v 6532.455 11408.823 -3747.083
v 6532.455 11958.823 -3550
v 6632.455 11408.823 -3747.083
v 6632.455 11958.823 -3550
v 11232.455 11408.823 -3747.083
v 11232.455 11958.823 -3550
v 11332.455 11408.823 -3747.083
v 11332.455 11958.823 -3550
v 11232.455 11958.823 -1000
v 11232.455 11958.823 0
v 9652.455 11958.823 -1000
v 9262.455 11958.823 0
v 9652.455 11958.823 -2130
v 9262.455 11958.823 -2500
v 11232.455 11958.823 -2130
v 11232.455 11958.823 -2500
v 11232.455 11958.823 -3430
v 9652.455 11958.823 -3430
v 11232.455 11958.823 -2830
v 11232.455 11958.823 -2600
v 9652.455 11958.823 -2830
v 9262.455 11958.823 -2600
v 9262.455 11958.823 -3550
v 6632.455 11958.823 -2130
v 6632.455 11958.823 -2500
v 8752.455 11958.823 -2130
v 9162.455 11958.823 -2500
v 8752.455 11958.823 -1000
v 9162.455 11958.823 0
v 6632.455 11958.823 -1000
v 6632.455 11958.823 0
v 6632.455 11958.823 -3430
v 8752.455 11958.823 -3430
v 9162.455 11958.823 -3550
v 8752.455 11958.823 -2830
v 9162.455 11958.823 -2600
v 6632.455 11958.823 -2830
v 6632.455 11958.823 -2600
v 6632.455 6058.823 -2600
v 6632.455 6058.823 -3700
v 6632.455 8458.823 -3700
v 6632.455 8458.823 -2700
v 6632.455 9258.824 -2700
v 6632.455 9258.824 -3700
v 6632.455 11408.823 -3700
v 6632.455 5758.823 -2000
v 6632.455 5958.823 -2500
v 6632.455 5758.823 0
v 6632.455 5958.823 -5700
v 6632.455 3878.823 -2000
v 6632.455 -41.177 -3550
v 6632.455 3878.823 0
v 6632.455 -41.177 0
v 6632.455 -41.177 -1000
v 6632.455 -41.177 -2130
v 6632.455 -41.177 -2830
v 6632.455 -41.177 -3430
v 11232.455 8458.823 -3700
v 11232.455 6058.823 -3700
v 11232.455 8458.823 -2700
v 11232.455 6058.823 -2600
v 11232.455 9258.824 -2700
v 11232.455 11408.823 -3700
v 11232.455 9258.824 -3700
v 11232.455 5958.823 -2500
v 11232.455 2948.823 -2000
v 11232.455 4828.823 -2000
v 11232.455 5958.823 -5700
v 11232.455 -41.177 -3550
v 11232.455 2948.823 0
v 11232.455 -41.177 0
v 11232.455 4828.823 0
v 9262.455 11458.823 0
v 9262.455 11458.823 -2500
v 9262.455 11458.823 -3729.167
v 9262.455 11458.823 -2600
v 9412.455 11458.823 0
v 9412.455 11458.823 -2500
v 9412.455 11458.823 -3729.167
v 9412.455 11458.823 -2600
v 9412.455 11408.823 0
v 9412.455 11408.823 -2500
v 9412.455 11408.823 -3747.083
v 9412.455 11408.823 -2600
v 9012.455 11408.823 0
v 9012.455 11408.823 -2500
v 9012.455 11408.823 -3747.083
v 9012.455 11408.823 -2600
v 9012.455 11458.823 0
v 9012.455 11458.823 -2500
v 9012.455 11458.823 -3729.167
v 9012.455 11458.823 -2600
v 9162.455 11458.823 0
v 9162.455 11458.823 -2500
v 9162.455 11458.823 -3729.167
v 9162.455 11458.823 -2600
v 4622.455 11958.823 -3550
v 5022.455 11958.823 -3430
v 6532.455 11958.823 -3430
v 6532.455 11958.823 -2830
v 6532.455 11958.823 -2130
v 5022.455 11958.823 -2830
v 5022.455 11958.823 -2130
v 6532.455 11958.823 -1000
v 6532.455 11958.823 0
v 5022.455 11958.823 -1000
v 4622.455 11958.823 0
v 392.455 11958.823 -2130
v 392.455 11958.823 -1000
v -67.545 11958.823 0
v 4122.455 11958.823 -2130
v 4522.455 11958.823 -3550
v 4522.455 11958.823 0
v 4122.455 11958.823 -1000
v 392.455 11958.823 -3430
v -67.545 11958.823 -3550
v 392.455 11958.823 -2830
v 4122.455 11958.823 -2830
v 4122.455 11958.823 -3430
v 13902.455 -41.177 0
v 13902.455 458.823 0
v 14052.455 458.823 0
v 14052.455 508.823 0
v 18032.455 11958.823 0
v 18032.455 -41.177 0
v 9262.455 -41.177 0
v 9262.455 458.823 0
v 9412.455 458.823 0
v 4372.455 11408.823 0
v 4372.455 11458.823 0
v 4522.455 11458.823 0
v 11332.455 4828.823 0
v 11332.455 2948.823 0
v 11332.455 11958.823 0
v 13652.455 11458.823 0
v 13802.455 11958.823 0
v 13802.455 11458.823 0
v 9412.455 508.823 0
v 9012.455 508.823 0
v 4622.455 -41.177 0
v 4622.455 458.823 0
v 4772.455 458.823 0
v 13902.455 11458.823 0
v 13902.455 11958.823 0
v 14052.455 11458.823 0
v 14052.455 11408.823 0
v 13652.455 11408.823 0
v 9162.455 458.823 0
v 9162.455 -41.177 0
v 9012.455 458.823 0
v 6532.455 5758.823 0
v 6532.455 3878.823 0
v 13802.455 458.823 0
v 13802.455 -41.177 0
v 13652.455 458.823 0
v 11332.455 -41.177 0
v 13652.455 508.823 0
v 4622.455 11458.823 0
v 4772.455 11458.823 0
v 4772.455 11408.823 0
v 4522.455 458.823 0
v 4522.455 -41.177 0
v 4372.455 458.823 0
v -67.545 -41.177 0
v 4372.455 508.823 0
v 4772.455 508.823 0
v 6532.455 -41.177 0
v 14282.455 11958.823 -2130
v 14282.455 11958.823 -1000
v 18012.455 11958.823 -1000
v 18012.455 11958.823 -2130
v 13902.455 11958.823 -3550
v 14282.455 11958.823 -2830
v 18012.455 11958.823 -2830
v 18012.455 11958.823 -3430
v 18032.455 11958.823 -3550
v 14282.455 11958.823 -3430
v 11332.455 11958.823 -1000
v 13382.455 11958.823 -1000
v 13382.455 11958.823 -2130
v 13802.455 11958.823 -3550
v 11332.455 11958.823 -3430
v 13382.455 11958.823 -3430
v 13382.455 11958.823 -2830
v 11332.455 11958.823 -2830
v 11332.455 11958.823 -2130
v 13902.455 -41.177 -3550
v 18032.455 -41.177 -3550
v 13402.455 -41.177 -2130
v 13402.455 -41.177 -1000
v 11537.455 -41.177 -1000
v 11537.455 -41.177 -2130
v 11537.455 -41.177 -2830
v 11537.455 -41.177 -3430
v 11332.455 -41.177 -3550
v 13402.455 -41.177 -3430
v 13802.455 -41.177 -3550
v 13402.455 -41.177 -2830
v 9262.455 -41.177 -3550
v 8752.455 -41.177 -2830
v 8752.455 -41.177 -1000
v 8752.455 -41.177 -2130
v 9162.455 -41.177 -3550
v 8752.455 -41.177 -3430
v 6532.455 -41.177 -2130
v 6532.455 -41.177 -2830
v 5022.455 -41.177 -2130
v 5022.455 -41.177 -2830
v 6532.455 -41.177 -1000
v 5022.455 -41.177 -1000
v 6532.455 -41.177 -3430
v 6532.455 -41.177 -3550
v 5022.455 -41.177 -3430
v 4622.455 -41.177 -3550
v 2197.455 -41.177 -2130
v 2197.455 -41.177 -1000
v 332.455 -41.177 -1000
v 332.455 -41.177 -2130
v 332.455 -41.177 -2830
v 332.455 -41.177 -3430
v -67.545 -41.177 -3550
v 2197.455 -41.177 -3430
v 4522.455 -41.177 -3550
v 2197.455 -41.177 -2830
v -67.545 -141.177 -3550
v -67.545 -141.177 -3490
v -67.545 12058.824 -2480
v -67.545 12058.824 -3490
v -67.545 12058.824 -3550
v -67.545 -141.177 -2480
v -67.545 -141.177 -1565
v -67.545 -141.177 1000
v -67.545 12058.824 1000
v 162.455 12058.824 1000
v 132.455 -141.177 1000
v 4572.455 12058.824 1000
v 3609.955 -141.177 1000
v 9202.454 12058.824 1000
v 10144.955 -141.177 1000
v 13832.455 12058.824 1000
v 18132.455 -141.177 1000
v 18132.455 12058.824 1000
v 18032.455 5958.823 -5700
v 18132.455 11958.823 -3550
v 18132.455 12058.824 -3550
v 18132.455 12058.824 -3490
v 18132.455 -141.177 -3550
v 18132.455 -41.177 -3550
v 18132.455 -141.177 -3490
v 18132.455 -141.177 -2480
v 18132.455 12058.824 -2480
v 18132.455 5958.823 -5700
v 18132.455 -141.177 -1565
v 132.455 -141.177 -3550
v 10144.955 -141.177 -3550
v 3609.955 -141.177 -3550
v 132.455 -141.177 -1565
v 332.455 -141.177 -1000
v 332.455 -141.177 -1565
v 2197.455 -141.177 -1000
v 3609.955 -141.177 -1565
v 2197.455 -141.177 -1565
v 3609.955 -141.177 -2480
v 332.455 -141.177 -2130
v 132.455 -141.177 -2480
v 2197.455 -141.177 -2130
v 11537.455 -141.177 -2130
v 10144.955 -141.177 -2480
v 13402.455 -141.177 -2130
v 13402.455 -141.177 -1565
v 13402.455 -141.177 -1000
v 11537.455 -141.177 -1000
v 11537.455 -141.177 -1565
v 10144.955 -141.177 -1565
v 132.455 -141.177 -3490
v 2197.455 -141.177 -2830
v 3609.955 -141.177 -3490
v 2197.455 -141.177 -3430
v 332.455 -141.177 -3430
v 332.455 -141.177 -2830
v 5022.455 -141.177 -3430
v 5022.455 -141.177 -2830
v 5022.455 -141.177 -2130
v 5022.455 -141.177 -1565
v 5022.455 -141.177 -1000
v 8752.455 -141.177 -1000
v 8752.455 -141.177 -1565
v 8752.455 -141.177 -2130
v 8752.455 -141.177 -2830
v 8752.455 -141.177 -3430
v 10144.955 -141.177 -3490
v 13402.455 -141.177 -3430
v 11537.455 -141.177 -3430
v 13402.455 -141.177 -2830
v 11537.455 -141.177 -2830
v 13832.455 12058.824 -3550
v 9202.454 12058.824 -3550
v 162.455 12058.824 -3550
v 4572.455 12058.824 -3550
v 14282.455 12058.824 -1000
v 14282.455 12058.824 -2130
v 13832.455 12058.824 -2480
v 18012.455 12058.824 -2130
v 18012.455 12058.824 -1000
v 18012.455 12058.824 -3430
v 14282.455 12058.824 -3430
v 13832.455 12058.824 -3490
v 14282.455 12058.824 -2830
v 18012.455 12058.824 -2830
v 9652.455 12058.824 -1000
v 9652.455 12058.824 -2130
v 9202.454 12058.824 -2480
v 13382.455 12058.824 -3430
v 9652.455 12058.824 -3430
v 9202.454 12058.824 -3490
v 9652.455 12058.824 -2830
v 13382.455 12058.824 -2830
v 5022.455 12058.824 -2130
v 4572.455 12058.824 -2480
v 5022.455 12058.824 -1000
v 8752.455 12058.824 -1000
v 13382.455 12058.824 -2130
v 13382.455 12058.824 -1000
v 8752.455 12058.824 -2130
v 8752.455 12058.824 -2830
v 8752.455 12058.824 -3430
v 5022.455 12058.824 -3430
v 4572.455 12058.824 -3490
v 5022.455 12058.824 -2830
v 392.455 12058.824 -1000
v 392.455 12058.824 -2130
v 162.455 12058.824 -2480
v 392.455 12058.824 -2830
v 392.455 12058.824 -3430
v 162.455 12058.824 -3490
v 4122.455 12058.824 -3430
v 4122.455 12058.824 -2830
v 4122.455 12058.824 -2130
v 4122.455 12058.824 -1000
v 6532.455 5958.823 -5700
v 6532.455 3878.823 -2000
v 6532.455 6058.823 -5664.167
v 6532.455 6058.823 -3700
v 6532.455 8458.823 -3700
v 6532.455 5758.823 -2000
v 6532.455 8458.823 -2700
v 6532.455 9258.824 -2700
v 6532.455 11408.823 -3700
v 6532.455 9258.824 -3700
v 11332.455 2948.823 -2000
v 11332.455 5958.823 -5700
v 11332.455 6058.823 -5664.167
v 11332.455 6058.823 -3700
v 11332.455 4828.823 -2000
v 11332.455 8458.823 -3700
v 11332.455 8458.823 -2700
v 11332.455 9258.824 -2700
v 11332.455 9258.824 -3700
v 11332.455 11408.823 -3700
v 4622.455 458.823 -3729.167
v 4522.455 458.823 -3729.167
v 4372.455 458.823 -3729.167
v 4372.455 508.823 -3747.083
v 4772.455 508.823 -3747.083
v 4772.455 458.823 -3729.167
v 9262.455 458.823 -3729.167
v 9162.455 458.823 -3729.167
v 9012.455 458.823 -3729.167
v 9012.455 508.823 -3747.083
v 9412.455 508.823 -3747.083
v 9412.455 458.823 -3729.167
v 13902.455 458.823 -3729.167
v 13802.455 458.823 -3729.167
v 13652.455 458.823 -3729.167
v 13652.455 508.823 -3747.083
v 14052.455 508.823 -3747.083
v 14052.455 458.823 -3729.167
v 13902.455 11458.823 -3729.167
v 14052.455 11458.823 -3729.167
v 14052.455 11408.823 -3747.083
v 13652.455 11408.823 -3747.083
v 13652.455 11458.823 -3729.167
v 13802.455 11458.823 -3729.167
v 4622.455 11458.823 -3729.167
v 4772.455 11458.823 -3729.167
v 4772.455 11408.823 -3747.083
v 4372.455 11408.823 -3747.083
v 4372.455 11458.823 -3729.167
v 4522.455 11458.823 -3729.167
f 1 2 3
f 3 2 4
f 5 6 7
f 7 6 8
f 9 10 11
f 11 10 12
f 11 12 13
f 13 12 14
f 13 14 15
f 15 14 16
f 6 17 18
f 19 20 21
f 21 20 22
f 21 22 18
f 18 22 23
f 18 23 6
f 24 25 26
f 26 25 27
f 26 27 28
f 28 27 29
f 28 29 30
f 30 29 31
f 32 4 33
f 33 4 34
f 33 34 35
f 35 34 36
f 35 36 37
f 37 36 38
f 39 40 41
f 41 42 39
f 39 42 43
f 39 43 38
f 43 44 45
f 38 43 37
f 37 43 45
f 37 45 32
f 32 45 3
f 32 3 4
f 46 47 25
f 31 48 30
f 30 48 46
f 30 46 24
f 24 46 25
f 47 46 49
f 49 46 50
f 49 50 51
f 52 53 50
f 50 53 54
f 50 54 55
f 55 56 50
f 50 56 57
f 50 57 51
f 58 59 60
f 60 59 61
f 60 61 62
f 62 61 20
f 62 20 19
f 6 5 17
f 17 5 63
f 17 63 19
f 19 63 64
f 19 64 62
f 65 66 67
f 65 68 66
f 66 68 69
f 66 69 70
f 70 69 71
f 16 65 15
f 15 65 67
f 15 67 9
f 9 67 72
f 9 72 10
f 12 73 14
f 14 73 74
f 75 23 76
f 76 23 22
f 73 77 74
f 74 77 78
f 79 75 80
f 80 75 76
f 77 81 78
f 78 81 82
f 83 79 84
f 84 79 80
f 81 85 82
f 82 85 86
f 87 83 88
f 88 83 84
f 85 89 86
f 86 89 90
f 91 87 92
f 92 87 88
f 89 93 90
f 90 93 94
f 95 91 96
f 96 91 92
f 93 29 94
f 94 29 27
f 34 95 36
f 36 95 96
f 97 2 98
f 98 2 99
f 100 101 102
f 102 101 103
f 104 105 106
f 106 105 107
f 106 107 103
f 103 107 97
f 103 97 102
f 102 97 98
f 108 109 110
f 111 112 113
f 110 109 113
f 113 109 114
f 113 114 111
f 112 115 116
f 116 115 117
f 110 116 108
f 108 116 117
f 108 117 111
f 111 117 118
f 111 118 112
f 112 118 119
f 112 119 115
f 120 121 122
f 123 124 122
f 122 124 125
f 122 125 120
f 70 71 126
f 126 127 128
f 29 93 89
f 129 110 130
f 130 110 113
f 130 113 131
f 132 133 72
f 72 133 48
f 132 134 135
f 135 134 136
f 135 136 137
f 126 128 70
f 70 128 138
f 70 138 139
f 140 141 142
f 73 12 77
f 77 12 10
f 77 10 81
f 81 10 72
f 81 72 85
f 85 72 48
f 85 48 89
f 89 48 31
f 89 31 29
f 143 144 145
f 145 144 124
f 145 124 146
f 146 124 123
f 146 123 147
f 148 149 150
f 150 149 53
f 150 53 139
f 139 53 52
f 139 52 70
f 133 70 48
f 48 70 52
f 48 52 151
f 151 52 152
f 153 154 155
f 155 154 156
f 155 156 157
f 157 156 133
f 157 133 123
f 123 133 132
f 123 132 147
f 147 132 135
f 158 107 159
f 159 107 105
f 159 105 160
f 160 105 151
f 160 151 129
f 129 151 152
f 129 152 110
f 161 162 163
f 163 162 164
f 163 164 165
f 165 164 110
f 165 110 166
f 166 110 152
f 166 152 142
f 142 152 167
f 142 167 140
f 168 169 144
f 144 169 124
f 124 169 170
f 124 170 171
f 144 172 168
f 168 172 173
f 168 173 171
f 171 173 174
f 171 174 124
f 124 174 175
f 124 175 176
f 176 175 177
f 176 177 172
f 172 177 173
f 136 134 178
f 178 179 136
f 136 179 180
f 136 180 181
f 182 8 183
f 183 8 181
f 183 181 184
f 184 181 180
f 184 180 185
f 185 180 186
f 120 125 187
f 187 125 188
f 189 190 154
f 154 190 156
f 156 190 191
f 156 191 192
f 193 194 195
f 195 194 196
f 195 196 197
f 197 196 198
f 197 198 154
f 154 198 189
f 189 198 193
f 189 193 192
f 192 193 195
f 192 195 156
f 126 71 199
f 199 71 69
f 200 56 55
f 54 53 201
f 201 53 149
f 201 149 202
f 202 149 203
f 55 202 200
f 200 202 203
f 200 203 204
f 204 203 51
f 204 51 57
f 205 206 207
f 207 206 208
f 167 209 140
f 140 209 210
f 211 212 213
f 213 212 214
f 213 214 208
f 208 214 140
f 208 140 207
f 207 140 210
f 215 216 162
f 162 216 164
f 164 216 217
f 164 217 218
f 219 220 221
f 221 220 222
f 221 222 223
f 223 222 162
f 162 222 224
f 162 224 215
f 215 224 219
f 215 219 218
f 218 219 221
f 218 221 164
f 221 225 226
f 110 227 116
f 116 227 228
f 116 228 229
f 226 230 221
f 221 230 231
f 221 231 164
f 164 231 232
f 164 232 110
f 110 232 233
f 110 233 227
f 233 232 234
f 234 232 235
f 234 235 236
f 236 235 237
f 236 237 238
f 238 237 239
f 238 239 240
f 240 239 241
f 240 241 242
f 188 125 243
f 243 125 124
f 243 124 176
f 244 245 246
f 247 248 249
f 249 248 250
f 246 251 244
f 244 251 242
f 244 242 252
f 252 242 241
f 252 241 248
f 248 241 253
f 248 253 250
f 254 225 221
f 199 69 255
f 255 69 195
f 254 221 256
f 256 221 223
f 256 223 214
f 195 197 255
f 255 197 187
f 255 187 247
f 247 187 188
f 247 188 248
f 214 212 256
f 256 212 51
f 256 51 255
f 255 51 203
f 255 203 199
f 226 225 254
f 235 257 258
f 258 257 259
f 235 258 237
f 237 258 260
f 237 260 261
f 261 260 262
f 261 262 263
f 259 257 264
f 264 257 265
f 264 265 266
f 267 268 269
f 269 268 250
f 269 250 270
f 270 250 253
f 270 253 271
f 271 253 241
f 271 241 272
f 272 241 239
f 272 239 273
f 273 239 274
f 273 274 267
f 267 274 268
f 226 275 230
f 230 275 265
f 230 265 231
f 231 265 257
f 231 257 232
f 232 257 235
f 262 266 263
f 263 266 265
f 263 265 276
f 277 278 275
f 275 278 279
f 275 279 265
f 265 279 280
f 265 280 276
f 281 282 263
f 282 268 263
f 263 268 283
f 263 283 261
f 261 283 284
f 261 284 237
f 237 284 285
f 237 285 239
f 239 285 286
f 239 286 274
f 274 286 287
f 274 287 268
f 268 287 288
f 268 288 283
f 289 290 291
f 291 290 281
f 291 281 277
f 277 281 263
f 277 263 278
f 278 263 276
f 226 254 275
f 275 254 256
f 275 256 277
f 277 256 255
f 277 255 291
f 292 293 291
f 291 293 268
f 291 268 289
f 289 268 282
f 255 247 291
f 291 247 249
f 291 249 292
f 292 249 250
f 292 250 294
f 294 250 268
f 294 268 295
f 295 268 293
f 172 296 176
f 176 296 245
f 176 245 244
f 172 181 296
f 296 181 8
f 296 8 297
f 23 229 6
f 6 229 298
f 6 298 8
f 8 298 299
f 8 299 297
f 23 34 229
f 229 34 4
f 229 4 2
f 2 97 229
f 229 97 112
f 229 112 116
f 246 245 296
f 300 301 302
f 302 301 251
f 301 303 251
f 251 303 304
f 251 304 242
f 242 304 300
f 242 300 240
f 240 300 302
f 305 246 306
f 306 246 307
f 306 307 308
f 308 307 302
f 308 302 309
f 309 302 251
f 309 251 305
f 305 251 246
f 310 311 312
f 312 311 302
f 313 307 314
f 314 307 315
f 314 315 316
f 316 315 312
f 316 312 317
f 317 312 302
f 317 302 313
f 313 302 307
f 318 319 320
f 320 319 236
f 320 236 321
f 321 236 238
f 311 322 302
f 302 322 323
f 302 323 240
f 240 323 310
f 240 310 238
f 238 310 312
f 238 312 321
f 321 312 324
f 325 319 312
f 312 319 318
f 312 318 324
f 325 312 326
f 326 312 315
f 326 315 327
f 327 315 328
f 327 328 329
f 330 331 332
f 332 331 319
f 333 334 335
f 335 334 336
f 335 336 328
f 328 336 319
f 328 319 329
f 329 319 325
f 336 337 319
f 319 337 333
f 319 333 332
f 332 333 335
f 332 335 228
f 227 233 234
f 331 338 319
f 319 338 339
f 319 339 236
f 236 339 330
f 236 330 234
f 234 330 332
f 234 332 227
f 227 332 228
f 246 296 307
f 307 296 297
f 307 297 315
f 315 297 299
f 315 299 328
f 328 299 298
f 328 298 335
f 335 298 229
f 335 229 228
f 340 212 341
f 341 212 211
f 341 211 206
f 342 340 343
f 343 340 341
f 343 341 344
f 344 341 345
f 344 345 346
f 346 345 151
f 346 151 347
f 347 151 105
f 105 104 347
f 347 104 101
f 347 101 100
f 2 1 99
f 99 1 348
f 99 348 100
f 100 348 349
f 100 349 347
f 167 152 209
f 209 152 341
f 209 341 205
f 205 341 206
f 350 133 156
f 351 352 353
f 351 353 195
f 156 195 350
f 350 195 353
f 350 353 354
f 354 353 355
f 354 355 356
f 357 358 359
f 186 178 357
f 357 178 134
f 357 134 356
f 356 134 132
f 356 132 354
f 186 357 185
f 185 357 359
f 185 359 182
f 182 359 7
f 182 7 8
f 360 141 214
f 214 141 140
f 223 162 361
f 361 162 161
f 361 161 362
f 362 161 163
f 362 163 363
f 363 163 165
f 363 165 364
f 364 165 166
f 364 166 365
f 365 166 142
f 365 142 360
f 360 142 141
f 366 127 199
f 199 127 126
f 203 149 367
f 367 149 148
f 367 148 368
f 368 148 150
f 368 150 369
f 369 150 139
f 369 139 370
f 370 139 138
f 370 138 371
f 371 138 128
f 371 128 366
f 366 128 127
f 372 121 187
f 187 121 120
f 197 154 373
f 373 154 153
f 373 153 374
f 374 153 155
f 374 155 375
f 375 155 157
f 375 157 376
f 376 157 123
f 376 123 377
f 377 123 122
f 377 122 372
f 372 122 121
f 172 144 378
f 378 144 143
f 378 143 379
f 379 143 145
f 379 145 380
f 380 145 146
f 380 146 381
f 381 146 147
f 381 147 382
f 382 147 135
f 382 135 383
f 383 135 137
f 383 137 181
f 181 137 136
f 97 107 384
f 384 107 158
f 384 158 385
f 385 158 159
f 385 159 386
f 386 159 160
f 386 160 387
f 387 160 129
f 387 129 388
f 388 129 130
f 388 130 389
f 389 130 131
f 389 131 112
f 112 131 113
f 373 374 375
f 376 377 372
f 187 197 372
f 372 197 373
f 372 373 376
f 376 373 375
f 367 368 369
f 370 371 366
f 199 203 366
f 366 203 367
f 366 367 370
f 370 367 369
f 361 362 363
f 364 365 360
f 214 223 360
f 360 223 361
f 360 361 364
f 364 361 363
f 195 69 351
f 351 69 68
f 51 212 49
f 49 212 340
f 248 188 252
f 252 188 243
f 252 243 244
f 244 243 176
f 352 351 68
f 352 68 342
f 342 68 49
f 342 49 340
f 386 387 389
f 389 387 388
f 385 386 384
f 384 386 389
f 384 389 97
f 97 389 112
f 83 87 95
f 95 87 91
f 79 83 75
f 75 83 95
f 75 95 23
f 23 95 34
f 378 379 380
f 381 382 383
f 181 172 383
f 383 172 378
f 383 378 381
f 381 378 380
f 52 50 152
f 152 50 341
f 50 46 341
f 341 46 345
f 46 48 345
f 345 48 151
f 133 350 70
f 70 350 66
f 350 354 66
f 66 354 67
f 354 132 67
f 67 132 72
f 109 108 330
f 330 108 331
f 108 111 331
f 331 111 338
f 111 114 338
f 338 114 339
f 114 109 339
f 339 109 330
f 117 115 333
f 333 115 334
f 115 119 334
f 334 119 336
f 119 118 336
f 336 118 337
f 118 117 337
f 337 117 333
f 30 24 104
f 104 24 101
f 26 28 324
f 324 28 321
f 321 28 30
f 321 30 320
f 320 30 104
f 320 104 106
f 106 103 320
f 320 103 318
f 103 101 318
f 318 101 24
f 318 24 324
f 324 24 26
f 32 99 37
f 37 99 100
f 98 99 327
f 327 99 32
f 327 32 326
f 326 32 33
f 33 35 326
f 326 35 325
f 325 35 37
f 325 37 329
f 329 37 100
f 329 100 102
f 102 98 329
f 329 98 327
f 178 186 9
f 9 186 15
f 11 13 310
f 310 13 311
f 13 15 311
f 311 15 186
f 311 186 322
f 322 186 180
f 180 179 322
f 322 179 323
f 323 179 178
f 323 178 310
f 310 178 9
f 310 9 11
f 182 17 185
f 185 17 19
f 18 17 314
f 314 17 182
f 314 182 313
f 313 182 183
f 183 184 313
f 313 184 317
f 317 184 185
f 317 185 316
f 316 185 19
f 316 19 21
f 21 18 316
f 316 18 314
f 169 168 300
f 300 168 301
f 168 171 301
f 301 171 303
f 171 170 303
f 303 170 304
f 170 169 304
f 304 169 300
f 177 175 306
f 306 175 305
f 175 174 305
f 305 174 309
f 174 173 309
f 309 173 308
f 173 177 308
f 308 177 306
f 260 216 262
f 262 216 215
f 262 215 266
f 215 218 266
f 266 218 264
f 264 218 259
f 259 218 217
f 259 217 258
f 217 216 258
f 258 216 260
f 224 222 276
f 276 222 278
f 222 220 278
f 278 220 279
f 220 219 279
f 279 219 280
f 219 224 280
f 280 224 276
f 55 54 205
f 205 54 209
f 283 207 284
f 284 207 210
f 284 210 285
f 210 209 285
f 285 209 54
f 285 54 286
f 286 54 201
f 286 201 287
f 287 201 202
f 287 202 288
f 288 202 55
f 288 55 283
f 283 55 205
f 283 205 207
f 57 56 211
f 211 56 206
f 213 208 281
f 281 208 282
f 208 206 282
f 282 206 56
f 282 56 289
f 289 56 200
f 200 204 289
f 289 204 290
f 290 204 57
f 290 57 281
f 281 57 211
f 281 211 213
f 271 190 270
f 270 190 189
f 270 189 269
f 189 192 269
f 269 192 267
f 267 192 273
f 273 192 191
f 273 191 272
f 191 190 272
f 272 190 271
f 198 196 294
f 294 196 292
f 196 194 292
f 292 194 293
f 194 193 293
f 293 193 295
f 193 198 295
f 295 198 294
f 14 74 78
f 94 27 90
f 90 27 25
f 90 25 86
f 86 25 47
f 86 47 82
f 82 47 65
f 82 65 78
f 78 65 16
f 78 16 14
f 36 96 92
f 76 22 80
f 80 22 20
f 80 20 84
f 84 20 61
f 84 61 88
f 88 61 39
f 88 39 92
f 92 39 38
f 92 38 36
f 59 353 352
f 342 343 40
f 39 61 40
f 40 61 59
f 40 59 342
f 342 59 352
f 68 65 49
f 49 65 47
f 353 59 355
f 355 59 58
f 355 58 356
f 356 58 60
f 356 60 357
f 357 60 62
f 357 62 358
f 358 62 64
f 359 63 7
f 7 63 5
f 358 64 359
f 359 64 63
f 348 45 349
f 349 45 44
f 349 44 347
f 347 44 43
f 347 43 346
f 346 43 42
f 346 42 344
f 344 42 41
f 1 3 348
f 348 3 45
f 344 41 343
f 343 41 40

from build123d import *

# Parameters (mm, degrees)
SKETCH_1_W           = 18100
SKETCH_1_H           = 12000
EXTRUDE_1_DEPTH      = 1000
SKETCH_11_W          = 6700
SKETCH_11_H          = 12000
EXTRUDE_7_DEPTH      = 100
SKETCH_12_W          = 18200
SKETCH_12_H          = 4550
EXTRUDE_8_DEPTH      = 100
SKETCH_13_W          = 18200
SKETCH_13_H          = 4550
EXTRUDE_9_DEPTH      = 100
SKETCH_14_W          = 100
SKETCH_14_H          = 12000
EXTRUDE_10_DEPTH     = 5700
EXTRUDE_11_DEPTH     = 5000
CUT_EXTRUDE_7_DEPTH  = 22565.246428131
SKETCH_17_W          = 2000
SKETCH_17_H          = 1880
CUT_EXTRUDE_8_DEPTH  = 100
SKETCH_18_W          = 2000
SKETCH_18_H          = 1880
CUT_EXTRUDE_9_DEPTH  = 100
SKETCH_19_W          = 3730
SKETCH_19_H          = 1130
SKETCH_19_H_2        = 600
CUT_EXTRUDE_10_DEPTH = 100
SKETCH_20_W          = 1865
SKETCH_20_H          = 1130
SKETCH_20_H_2        = 600
SKETCH_20_W_2        = 3730
CUT_EXTRUDE_11_DEPTH = 100
EXTRUDE_12_REACH     = 17483.282
CUT_EXTRUDE_13_REACH = 17678.686


with BuildPart() as part:
    # ｽｹｯﾁ1 → ﾎﾞｽ - 押し出し1 (new body)
    with BuildSketch(Plane.XY):
        with Locations((8982.45501815, 5958.823195876)):
            Rectangle(SKETCH_1_W, SKETCH_1_H)
    extrude(amount=EXTRUDE_1_DEPTH)

    # ｽｹｯﾁ11 → ﾎﾞｽ - 押し出し7 (add)
    with BuildSketch(Plane(origin=(18032.45501815, 0, 0), x_dir=(0, 0, -1), z_dir=(1, 0, 0))):
        with Locations((2350, 5958.823195876)):
            Rectangle(SKETCH_11_W, SKETCH_11_H)
    extrude(amount=EXTRUDE_7_DEPTH)

    # ｽｹｯﾁ12 → ﾎﾞｽ - 押し出し8 (add)
    with BuildSketch(Plane(origin=(0, -41.176804124, 0), x_dir=(-1, 0, 0), z_dir=(0, -1, 0))):
        with Locations((-9032.45501815, 1275)):
            Rectangle(SKETCH_12_W, SKETCH_12_H)
    extrude(amount=EXTRUDE_8_DEPTH)

    # ｽｹｯﾁ13 → ﾎﾞｽ - 押し出し9 (add)
    with BuildSketch(Plane(origin=(0, 11958.823195876, 0), x_dir=(1, 0, 0), z_dir=(0, 1, 0))):
        with Locations((9032.45501815, 1275)):
            Rectangle(SKETCH_13_W, SKETCH_13_H)
    extrude(amount=EXTRUDE_9_DEPTH)

    # ｽｹｯﾁ14 → ﾎﾞｽ - 押し出し10 (add)
    with BuildSketch(Plane(origin=(0, 0, 0), x_dir=(-1, 0, 0), z_dir=(0, 0, -1))):
        with Locations((-6582.45501815, 5958.823195876)):
            Rectangle(SKETCH_14_W, SKETCH_14_H)
        with Locations((-11282.45501815, 5958.823195876)):
            Rectangle(SKETCH_14_W, SKETCH_14_H)
    extrude(amount=EXTRUDE_10_DEPTH)

    # ｽｹｯﾁ16 → ﾎﾞｽ - 押し出し11 (add)
    with BuildSketch(Plane(origin=(0, 0, 0), x_dir=(-1, 0, 0), z_dir=(0, 0, -1))):
        Polygon((-4622.45501815, -41.176804124), (-4522.45501815, -41.176804124), (-4522.45501815, 458.823195876), (-4372.45501815, 458.823195876), (-4372.45501815, 508.823195876), (-4772.45501815, 508.823195876), (-4772.45501815, 458.823195876), (-4622.45501815, 458.823195876), align=None)
        Polygon((-9262.45501815, -41.176804124), (-9162.45501815, -41.176804124), (-9162.45501815, 458.823195876), (-9012.45501815, 458.823195876), (-9012.45501815, 508.823195876), (-9412.45501815, 508.823195876), (-9412.45501815, 458.823195876), (-9262.45501815, 458.823195876), align=None)
        Polygon((-13902.45501815, -41.176804124), (-13802.45501815, -41.176804124), (-13802.45501815, 458.823195876), (-13652.45501815, 458.823195876), (-13652.45501815, 508.823195876), (-14052.45501815, 508.823195876), (-14052.45501815, 458.823195876), (-13902.45501815, 458.823195876), align=None)
        Polygon((-13902.45501815, 11958.823195876), (-13802.45501815, 11958.823195876), (-13802.45501815, 11458.823195876), (-13652.45501815, 11458.823195876), (-13652.45501815, 11408.823195876), (-14052.45501815, 11408.823195876), (-14052.45501815, 11458.823195876), (-13902.45501815, 11458.823195876), align=None)
        Polygon((-9262.45501815, 11958.823195876), (-9162.45501815, 11958.823195876), (-9162.45501815, 11458.823195876), (-9012.45501815, 11458.823195876), (-9012.45501815, 11408.823195876), (-9412.45501815, 11408.823195876), (-9412.45501815, 11458.823195876), (-9262.45501815, 11458.823195876), align=None)
        Polygon((-4622.45501815, 11958.823195876), (-4522.45501815, 11958.823195876), (-4522.45501815, 11458.823195876), (-4372.45501815, 11458.823195876), (-4372.45501815, 11408.823195876), (-4772.45501815, 11408.823195876), (-4772.45501815, 11458.823195876), (-4622.45501815, 11458.823195876), align=None)
    extrude(amount=EXTRUDE_11_DEPTH)

    # ｽｹｯﾁ15 → ｶｯﾄ - 押し出し7 (cut, through all)
    with BuildSketch(Plane(origin=(18132.45501815, 0, 0), x_dir=(0, 0, -1), z_dir=(1, 0, 0))):
        Polygon((5700, -41.176804124), (5700, 5958.823195876), (3550, -41.176804124), align=None)
        Polygon((5700, 5958.823195876), (5700, 11958.823195876), (3550, 11958.823195876), align=None)
    extrude(amount=-CUT_EXTRUDE_7_DEPTH, mode=Mode.SUBTRACT)

    # ｽｹｯﾁ17 → ｶｯﾄ - 押し出し8 (cut)
    with BuildSketch(Plane.ZY.offset(-6532.45501815)):
        with Locations((-1000, 4818.823195876)):
            Rectangle(SKETCH_17_W, SKETCH_17_H)
    extrude(amount=-CUT_EXTRUDE_8_DEPTH, mode=Mode.SUBTRACT)

    # ｽｹｯﾁ18 → ｶｯﾄ - 押し出し9 (cut)
    with BuildSketch(Plane.ZY.offset(-11232.45501815)):
        with Locations((-1000, 3888.823195876)):
            Rectangle(SKETCH_18_W, SKETCH_18_H)
    extrude(amount=-CUT_EXTRUDE_9_DEPTH, mode=Mode.SUBTRACT)

    # ｽｹｯﾁ19 → ｶｯﾄ - 押し出し10 (cut)
    with BuildSketch(Plane(origin=(0, 12058.823195876, 0), x_dir=(1, 0, 0), z_dir=(0, 1, 0))):
        with Locations((2257.45501815, 1565)):
            Rectangle(SKETCH_19_W, SKETCH_19_H)
        with Locations((2257.45501815, 3130)):
            Rectangle(SKETCH_19_W, SKETCH_19_H_2)
        with Locations((6887.45501815, 1565)):
            Rectangle(SKETCH_19_W, SKETCH_19_H)
        with Locations((6887.45501815, 3130)):
            Rectangle(SKETCH_19_W, SKETCH_19_H_2)
        with Locations((11517.45501815, 1565)):
            Rectangle(SKETCH_19_W, SKETCH_19_H)
        with Locations((11517.45501815, 3130)):
            Rectangle(SKETCH_19_W, SKETCH_19_H_2)
        with Locations((16147.45501815, 1565)):
            Rectangle(SKETCH_19_W, SKETCH_19_H)
        with Locations((16147.45501815, 3130)):
            Rectangle(SKETCH_19_W, SKETCH_19_H_2)
    extrude(amount=-CUT_EXTRUDE_10_DEPTH, mode=Mode.SUBTRACT)

    # ｽｹｯﾁ20 → ｶｯﾄ - 押し出し11 (cut)
    with BuildSketch(Plane(origin=(0, -141.176804124, 0), x_dir=(-1, 0, 0), z_dir=(0, -1, 0))):
        with Locations((-1264.95501815, 1565)):
            Rectangle(SKETCH_20_W, SKETCH_20_H)
        with Locations((-1264.95501815, 3130)):
            Rectangle(SKETCH_20_W, SKETCH_20_H_2)
        with Locations((-6887.45501815, 1565)):
            Rectangle(SKETCH_20_W_2, SKETCH_20_H)
        with Locations((-6887.45501815, 3130)):
            Rectangle(SKETCH_20_W_2, SKETCH_20_H_2)
        with Locations((-12469.95501815, 1565)):
            Rectangle(SKETCH_20_W, SKETCH_20_H)
        with Locations((-12469.95501815, 3130)):
            Rectangle(SKETCH_20_W, SKETCH_20_H_2)
    extrude(amount=-CUT_EXTRUDE_11_DEPTH, mode=Mode.SUBTRACT)

    # ｽｹｯﾁ21 → ﾎﾞｽ - 押し出し12 (add, up to next)
    with BuildSketch(Plane.ZY.offset(-11232.45501815), mode=Mode.PRIVATE) as extrude_12_sk1:
        Polygon((-5700, 5958.823195876), (-2500, 5958.823195876), (-2500, 11958.823195876), (-2600, 11958.823195876), (-2600, 6058.823195876), (-5664.166666667, 6058.823195876), align=None)
    extrude_12_tool1 = extrude(extrude_12_sk1.sketch, amount=EXTRUDE_12_REACH, mode=Mode.PRIVATE) - part.part
    add(extrude_12_tool1.solids().sort_by_distance((11232.455018, 6026.823196, -4100))[0])

    # ｶｯﾄ - 押し出し13: up to this face of the body (flat: up to its plane)
    cut_extrude_13_end = Plane(part.part.faces().sort_by_distance((11332.45501815, 6109.252264295, -2452.551217627))[0])
    # ｽｹｯﾁ22 → ｶｯﾄ - 押し出し13 (cut, up to the picked face)
    with BuildSketch(Plane.ZY.offset(-6532.45501815), mode=Mode.PRIVATE) as cut_extrude_13_sk1:
        Polygon((-5664.166666667, 6058.823195876), (-3700, 6058.823195876), (-3700, 8458.823195876), (-2700, 8458.823195876), (-2700, 9258.823195876), (-3700, 9258.823195876), (-3700, 11408.823195876), (-3747.083333333, 11408.823195876), align=None)
    cut_extrude_13_tool1 = split(extrude(cut_extrude_13_sk1.sketch, amount=-CUT_EXTRUDE_13_REACH, mode=Mode.PRIVATE), bisect_by=cut_extrude_13_end, keep=Keep.BOTH, mode=Mode.PRIVATE)
    add(cut_extrude_13_tool1.solids().sort_by(Axis((6532.455018, 8010.105511, -4205.565732), (1, 0, 0)))[0], mode=Mode.SUBTRACT)


solid = part.part
